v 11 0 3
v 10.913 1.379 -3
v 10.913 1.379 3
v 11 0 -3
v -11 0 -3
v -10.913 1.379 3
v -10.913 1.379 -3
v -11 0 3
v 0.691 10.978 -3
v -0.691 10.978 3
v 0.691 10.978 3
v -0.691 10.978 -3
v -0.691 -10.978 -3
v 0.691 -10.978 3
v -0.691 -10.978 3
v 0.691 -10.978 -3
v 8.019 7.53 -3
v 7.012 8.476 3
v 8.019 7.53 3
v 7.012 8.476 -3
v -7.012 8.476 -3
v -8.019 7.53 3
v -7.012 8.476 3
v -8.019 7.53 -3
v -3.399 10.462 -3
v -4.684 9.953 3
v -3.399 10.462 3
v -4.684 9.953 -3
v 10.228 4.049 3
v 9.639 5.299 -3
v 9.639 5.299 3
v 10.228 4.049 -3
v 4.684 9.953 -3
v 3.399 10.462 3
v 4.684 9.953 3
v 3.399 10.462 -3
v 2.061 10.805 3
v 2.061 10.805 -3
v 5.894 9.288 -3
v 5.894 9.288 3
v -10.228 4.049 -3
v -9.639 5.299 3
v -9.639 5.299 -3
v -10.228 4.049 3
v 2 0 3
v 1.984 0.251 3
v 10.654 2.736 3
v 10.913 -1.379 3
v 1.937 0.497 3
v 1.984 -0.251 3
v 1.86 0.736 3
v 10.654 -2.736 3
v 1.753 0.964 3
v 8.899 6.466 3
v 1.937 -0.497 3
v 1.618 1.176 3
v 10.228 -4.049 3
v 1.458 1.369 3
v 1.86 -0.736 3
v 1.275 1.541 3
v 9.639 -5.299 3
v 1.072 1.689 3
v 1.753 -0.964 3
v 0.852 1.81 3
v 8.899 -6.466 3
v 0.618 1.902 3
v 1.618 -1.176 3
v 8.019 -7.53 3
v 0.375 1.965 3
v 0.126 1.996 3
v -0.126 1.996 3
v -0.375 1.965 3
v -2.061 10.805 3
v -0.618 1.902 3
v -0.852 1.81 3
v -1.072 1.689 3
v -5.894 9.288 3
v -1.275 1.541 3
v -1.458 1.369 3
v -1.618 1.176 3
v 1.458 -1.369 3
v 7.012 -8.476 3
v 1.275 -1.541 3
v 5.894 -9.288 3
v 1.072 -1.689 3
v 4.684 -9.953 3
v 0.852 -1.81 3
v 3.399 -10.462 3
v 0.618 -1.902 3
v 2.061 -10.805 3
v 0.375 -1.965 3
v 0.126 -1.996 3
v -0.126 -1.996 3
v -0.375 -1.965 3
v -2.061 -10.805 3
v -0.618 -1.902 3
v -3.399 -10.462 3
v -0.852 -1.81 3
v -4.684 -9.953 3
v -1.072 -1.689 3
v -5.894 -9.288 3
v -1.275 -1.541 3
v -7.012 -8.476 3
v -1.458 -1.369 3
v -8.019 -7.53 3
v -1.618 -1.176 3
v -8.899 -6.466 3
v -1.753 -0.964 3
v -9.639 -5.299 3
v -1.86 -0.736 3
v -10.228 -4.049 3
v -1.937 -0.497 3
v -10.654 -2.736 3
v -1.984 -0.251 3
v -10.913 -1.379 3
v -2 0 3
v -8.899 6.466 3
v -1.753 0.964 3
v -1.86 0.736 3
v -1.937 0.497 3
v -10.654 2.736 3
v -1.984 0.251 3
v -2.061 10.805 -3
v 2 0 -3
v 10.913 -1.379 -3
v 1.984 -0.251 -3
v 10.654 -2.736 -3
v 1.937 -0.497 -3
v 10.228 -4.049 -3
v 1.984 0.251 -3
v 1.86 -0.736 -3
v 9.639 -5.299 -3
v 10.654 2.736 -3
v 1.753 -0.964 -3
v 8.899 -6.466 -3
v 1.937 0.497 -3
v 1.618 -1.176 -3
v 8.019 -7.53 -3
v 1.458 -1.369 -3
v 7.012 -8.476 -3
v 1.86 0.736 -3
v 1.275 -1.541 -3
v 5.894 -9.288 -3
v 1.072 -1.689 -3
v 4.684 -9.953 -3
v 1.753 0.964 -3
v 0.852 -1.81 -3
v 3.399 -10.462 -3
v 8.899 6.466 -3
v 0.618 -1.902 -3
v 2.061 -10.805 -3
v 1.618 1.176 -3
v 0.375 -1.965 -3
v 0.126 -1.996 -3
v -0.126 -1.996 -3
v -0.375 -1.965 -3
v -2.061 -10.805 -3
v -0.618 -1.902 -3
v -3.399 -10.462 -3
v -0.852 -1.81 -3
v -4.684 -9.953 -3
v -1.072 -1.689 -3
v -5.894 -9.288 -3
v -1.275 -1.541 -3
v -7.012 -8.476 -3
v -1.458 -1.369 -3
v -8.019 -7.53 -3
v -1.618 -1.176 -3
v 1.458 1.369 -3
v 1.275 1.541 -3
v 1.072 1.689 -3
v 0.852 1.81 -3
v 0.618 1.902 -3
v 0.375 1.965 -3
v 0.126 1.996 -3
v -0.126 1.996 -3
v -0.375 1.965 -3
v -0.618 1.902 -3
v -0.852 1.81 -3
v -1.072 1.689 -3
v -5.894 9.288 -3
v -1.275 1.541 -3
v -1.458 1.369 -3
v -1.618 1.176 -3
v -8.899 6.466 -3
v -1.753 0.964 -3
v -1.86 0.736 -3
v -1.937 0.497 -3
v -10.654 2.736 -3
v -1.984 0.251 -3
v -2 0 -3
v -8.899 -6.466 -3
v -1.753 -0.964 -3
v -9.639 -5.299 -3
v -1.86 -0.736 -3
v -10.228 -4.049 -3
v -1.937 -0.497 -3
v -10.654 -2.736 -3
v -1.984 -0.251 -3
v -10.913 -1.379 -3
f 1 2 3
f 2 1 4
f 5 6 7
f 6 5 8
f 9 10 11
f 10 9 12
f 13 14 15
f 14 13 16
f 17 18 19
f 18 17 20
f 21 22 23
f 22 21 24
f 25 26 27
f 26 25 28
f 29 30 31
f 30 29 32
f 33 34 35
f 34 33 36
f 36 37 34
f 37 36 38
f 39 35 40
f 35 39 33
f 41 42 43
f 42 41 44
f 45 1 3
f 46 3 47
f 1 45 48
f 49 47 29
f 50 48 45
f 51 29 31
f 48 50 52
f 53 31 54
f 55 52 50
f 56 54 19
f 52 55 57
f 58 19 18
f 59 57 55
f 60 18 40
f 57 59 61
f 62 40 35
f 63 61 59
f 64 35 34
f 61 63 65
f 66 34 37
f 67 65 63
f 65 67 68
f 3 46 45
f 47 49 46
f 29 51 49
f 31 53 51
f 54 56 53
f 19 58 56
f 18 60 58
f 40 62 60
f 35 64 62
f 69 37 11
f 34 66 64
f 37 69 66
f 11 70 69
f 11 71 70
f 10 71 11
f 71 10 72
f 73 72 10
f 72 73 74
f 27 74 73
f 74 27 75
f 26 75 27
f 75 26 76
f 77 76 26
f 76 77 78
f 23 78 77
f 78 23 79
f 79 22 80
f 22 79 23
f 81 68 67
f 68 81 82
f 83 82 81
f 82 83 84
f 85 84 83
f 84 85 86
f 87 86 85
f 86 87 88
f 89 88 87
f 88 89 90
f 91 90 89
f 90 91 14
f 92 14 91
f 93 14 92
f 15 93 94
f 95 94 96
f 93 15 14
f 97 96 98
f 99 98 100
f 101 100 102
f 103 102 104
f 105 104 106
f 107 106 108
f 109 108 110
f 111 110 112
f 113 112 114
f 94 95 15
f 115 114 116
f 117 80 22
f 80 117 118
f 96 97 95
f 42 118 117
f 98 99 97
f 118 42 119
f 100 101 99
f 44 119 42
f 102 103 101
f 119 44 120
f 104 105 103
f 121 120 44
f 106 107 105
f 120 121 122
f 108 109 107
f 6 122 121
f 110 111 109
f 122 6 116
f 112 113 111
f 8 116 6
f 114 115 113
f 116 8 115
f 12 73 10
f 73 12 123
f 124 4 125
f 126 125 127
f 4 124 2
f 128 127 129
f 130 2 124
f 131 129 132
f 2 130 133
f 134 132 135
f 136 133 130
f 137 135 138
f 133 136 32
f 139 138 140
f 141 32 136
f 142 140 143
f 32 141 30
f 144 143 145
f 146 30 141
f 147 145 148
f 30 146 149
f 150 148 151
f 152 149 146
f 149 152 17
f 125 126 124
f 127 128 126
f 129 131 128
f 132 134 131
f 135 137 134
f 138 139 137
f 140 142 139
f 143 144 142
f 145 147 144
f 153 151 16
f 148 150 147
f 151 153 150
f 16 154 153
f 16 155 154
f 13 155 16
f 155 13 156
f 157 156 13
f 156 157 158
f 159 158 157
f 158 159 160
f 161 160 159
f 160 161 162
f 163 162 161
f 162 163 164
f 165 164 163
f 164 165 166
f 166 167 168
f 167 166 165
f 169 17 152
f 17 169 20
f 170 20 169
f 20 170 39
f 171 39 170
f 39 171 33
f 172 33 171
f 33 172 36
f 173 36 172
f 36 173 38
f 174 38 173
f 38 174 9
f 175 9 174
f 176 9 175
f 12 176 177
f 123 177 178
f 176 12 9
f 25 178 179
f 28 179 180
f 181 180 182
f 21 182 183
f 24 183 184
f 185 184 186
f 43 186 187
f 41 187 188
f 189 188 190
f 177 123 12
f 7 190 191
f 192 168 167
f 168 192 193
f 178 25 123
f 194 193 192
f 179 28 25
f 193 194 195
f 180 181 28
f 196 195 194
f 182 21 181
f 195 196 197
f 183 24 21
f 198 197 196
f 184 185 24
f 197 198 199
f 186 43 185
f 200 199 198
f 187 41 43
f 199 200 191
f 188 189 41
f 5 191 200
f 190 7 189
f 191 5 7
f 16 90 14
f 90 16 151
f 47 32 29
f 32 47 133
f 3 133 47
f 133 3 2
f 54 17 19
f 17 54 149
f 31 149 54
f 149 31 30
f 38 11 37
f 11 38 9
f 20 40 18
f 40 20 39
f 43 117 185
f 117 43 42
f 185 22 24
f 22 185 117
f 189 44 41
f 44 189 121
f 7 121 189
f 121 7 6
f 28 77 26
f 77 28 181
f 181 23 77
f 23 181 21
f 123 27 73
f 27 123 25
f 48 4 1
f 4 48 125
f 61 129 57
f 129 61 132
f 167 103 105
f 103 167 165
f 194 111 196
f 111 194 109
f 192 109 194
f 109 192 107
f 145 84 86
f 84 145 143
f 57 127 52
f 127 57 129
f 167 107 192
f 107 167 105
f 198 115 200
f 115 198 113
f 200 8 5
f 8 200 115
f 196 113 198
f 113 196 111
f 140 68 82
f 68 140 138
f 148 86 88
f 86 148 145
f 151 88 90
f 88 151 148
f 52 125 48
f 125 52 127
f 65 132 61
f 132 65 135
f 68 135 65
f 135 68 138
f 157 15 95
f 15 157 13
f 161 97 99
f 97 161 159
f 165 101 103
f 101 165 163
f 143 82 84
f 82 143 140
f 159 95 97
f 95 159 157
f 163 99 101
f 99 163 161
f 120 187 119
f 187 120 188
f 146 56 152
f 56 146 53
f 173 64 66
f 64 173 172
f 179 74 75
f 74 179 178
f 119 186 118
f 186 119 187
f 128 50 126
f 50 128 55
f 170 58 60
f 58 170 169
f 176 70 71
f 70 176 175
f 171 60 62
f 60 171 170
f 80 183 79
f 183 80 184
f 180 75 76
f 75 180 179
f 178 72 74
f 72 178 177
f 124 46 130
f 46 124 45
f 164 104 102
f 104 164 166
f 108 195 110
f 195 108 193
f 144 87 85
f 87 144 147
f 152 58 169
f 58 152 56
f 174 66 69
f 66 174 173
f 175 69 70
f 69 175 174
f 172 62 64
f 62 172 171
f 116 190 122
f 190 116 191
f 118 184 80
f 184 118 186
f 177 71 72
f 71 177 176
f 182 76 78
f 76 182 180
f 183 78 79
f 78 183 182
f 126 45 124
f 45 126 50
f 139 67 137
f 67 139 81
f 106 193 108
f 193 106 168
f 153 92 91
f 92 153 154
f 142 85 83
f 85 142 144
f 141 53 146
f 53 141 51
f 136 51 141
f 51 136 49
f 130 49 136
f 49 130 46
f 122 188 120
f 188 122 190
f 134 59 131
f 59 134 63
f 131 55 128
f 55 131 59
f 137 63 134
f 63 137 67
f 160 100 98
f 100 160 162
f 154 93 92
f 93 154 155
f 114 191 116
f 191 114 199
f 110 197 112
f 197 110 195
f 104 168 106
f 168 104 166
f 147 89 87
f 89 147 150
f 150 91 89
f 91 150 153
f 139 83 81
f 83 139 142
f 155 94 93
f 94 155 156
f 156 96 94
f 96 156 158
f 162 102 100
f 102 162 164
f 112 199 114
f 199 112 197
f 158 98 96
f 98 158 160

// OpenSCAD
$fn = 50;


difference() {
	union() {
		translate(v = [0, 0, -3.0000000000]) {
			cylinder(h = 6, r = 11.0000000000);
		}
	}
	union() {
		translate(v = [0, 0, -100.0000000000]) {
			cylinder(h = 200, r = 2);
		}
	}
}
